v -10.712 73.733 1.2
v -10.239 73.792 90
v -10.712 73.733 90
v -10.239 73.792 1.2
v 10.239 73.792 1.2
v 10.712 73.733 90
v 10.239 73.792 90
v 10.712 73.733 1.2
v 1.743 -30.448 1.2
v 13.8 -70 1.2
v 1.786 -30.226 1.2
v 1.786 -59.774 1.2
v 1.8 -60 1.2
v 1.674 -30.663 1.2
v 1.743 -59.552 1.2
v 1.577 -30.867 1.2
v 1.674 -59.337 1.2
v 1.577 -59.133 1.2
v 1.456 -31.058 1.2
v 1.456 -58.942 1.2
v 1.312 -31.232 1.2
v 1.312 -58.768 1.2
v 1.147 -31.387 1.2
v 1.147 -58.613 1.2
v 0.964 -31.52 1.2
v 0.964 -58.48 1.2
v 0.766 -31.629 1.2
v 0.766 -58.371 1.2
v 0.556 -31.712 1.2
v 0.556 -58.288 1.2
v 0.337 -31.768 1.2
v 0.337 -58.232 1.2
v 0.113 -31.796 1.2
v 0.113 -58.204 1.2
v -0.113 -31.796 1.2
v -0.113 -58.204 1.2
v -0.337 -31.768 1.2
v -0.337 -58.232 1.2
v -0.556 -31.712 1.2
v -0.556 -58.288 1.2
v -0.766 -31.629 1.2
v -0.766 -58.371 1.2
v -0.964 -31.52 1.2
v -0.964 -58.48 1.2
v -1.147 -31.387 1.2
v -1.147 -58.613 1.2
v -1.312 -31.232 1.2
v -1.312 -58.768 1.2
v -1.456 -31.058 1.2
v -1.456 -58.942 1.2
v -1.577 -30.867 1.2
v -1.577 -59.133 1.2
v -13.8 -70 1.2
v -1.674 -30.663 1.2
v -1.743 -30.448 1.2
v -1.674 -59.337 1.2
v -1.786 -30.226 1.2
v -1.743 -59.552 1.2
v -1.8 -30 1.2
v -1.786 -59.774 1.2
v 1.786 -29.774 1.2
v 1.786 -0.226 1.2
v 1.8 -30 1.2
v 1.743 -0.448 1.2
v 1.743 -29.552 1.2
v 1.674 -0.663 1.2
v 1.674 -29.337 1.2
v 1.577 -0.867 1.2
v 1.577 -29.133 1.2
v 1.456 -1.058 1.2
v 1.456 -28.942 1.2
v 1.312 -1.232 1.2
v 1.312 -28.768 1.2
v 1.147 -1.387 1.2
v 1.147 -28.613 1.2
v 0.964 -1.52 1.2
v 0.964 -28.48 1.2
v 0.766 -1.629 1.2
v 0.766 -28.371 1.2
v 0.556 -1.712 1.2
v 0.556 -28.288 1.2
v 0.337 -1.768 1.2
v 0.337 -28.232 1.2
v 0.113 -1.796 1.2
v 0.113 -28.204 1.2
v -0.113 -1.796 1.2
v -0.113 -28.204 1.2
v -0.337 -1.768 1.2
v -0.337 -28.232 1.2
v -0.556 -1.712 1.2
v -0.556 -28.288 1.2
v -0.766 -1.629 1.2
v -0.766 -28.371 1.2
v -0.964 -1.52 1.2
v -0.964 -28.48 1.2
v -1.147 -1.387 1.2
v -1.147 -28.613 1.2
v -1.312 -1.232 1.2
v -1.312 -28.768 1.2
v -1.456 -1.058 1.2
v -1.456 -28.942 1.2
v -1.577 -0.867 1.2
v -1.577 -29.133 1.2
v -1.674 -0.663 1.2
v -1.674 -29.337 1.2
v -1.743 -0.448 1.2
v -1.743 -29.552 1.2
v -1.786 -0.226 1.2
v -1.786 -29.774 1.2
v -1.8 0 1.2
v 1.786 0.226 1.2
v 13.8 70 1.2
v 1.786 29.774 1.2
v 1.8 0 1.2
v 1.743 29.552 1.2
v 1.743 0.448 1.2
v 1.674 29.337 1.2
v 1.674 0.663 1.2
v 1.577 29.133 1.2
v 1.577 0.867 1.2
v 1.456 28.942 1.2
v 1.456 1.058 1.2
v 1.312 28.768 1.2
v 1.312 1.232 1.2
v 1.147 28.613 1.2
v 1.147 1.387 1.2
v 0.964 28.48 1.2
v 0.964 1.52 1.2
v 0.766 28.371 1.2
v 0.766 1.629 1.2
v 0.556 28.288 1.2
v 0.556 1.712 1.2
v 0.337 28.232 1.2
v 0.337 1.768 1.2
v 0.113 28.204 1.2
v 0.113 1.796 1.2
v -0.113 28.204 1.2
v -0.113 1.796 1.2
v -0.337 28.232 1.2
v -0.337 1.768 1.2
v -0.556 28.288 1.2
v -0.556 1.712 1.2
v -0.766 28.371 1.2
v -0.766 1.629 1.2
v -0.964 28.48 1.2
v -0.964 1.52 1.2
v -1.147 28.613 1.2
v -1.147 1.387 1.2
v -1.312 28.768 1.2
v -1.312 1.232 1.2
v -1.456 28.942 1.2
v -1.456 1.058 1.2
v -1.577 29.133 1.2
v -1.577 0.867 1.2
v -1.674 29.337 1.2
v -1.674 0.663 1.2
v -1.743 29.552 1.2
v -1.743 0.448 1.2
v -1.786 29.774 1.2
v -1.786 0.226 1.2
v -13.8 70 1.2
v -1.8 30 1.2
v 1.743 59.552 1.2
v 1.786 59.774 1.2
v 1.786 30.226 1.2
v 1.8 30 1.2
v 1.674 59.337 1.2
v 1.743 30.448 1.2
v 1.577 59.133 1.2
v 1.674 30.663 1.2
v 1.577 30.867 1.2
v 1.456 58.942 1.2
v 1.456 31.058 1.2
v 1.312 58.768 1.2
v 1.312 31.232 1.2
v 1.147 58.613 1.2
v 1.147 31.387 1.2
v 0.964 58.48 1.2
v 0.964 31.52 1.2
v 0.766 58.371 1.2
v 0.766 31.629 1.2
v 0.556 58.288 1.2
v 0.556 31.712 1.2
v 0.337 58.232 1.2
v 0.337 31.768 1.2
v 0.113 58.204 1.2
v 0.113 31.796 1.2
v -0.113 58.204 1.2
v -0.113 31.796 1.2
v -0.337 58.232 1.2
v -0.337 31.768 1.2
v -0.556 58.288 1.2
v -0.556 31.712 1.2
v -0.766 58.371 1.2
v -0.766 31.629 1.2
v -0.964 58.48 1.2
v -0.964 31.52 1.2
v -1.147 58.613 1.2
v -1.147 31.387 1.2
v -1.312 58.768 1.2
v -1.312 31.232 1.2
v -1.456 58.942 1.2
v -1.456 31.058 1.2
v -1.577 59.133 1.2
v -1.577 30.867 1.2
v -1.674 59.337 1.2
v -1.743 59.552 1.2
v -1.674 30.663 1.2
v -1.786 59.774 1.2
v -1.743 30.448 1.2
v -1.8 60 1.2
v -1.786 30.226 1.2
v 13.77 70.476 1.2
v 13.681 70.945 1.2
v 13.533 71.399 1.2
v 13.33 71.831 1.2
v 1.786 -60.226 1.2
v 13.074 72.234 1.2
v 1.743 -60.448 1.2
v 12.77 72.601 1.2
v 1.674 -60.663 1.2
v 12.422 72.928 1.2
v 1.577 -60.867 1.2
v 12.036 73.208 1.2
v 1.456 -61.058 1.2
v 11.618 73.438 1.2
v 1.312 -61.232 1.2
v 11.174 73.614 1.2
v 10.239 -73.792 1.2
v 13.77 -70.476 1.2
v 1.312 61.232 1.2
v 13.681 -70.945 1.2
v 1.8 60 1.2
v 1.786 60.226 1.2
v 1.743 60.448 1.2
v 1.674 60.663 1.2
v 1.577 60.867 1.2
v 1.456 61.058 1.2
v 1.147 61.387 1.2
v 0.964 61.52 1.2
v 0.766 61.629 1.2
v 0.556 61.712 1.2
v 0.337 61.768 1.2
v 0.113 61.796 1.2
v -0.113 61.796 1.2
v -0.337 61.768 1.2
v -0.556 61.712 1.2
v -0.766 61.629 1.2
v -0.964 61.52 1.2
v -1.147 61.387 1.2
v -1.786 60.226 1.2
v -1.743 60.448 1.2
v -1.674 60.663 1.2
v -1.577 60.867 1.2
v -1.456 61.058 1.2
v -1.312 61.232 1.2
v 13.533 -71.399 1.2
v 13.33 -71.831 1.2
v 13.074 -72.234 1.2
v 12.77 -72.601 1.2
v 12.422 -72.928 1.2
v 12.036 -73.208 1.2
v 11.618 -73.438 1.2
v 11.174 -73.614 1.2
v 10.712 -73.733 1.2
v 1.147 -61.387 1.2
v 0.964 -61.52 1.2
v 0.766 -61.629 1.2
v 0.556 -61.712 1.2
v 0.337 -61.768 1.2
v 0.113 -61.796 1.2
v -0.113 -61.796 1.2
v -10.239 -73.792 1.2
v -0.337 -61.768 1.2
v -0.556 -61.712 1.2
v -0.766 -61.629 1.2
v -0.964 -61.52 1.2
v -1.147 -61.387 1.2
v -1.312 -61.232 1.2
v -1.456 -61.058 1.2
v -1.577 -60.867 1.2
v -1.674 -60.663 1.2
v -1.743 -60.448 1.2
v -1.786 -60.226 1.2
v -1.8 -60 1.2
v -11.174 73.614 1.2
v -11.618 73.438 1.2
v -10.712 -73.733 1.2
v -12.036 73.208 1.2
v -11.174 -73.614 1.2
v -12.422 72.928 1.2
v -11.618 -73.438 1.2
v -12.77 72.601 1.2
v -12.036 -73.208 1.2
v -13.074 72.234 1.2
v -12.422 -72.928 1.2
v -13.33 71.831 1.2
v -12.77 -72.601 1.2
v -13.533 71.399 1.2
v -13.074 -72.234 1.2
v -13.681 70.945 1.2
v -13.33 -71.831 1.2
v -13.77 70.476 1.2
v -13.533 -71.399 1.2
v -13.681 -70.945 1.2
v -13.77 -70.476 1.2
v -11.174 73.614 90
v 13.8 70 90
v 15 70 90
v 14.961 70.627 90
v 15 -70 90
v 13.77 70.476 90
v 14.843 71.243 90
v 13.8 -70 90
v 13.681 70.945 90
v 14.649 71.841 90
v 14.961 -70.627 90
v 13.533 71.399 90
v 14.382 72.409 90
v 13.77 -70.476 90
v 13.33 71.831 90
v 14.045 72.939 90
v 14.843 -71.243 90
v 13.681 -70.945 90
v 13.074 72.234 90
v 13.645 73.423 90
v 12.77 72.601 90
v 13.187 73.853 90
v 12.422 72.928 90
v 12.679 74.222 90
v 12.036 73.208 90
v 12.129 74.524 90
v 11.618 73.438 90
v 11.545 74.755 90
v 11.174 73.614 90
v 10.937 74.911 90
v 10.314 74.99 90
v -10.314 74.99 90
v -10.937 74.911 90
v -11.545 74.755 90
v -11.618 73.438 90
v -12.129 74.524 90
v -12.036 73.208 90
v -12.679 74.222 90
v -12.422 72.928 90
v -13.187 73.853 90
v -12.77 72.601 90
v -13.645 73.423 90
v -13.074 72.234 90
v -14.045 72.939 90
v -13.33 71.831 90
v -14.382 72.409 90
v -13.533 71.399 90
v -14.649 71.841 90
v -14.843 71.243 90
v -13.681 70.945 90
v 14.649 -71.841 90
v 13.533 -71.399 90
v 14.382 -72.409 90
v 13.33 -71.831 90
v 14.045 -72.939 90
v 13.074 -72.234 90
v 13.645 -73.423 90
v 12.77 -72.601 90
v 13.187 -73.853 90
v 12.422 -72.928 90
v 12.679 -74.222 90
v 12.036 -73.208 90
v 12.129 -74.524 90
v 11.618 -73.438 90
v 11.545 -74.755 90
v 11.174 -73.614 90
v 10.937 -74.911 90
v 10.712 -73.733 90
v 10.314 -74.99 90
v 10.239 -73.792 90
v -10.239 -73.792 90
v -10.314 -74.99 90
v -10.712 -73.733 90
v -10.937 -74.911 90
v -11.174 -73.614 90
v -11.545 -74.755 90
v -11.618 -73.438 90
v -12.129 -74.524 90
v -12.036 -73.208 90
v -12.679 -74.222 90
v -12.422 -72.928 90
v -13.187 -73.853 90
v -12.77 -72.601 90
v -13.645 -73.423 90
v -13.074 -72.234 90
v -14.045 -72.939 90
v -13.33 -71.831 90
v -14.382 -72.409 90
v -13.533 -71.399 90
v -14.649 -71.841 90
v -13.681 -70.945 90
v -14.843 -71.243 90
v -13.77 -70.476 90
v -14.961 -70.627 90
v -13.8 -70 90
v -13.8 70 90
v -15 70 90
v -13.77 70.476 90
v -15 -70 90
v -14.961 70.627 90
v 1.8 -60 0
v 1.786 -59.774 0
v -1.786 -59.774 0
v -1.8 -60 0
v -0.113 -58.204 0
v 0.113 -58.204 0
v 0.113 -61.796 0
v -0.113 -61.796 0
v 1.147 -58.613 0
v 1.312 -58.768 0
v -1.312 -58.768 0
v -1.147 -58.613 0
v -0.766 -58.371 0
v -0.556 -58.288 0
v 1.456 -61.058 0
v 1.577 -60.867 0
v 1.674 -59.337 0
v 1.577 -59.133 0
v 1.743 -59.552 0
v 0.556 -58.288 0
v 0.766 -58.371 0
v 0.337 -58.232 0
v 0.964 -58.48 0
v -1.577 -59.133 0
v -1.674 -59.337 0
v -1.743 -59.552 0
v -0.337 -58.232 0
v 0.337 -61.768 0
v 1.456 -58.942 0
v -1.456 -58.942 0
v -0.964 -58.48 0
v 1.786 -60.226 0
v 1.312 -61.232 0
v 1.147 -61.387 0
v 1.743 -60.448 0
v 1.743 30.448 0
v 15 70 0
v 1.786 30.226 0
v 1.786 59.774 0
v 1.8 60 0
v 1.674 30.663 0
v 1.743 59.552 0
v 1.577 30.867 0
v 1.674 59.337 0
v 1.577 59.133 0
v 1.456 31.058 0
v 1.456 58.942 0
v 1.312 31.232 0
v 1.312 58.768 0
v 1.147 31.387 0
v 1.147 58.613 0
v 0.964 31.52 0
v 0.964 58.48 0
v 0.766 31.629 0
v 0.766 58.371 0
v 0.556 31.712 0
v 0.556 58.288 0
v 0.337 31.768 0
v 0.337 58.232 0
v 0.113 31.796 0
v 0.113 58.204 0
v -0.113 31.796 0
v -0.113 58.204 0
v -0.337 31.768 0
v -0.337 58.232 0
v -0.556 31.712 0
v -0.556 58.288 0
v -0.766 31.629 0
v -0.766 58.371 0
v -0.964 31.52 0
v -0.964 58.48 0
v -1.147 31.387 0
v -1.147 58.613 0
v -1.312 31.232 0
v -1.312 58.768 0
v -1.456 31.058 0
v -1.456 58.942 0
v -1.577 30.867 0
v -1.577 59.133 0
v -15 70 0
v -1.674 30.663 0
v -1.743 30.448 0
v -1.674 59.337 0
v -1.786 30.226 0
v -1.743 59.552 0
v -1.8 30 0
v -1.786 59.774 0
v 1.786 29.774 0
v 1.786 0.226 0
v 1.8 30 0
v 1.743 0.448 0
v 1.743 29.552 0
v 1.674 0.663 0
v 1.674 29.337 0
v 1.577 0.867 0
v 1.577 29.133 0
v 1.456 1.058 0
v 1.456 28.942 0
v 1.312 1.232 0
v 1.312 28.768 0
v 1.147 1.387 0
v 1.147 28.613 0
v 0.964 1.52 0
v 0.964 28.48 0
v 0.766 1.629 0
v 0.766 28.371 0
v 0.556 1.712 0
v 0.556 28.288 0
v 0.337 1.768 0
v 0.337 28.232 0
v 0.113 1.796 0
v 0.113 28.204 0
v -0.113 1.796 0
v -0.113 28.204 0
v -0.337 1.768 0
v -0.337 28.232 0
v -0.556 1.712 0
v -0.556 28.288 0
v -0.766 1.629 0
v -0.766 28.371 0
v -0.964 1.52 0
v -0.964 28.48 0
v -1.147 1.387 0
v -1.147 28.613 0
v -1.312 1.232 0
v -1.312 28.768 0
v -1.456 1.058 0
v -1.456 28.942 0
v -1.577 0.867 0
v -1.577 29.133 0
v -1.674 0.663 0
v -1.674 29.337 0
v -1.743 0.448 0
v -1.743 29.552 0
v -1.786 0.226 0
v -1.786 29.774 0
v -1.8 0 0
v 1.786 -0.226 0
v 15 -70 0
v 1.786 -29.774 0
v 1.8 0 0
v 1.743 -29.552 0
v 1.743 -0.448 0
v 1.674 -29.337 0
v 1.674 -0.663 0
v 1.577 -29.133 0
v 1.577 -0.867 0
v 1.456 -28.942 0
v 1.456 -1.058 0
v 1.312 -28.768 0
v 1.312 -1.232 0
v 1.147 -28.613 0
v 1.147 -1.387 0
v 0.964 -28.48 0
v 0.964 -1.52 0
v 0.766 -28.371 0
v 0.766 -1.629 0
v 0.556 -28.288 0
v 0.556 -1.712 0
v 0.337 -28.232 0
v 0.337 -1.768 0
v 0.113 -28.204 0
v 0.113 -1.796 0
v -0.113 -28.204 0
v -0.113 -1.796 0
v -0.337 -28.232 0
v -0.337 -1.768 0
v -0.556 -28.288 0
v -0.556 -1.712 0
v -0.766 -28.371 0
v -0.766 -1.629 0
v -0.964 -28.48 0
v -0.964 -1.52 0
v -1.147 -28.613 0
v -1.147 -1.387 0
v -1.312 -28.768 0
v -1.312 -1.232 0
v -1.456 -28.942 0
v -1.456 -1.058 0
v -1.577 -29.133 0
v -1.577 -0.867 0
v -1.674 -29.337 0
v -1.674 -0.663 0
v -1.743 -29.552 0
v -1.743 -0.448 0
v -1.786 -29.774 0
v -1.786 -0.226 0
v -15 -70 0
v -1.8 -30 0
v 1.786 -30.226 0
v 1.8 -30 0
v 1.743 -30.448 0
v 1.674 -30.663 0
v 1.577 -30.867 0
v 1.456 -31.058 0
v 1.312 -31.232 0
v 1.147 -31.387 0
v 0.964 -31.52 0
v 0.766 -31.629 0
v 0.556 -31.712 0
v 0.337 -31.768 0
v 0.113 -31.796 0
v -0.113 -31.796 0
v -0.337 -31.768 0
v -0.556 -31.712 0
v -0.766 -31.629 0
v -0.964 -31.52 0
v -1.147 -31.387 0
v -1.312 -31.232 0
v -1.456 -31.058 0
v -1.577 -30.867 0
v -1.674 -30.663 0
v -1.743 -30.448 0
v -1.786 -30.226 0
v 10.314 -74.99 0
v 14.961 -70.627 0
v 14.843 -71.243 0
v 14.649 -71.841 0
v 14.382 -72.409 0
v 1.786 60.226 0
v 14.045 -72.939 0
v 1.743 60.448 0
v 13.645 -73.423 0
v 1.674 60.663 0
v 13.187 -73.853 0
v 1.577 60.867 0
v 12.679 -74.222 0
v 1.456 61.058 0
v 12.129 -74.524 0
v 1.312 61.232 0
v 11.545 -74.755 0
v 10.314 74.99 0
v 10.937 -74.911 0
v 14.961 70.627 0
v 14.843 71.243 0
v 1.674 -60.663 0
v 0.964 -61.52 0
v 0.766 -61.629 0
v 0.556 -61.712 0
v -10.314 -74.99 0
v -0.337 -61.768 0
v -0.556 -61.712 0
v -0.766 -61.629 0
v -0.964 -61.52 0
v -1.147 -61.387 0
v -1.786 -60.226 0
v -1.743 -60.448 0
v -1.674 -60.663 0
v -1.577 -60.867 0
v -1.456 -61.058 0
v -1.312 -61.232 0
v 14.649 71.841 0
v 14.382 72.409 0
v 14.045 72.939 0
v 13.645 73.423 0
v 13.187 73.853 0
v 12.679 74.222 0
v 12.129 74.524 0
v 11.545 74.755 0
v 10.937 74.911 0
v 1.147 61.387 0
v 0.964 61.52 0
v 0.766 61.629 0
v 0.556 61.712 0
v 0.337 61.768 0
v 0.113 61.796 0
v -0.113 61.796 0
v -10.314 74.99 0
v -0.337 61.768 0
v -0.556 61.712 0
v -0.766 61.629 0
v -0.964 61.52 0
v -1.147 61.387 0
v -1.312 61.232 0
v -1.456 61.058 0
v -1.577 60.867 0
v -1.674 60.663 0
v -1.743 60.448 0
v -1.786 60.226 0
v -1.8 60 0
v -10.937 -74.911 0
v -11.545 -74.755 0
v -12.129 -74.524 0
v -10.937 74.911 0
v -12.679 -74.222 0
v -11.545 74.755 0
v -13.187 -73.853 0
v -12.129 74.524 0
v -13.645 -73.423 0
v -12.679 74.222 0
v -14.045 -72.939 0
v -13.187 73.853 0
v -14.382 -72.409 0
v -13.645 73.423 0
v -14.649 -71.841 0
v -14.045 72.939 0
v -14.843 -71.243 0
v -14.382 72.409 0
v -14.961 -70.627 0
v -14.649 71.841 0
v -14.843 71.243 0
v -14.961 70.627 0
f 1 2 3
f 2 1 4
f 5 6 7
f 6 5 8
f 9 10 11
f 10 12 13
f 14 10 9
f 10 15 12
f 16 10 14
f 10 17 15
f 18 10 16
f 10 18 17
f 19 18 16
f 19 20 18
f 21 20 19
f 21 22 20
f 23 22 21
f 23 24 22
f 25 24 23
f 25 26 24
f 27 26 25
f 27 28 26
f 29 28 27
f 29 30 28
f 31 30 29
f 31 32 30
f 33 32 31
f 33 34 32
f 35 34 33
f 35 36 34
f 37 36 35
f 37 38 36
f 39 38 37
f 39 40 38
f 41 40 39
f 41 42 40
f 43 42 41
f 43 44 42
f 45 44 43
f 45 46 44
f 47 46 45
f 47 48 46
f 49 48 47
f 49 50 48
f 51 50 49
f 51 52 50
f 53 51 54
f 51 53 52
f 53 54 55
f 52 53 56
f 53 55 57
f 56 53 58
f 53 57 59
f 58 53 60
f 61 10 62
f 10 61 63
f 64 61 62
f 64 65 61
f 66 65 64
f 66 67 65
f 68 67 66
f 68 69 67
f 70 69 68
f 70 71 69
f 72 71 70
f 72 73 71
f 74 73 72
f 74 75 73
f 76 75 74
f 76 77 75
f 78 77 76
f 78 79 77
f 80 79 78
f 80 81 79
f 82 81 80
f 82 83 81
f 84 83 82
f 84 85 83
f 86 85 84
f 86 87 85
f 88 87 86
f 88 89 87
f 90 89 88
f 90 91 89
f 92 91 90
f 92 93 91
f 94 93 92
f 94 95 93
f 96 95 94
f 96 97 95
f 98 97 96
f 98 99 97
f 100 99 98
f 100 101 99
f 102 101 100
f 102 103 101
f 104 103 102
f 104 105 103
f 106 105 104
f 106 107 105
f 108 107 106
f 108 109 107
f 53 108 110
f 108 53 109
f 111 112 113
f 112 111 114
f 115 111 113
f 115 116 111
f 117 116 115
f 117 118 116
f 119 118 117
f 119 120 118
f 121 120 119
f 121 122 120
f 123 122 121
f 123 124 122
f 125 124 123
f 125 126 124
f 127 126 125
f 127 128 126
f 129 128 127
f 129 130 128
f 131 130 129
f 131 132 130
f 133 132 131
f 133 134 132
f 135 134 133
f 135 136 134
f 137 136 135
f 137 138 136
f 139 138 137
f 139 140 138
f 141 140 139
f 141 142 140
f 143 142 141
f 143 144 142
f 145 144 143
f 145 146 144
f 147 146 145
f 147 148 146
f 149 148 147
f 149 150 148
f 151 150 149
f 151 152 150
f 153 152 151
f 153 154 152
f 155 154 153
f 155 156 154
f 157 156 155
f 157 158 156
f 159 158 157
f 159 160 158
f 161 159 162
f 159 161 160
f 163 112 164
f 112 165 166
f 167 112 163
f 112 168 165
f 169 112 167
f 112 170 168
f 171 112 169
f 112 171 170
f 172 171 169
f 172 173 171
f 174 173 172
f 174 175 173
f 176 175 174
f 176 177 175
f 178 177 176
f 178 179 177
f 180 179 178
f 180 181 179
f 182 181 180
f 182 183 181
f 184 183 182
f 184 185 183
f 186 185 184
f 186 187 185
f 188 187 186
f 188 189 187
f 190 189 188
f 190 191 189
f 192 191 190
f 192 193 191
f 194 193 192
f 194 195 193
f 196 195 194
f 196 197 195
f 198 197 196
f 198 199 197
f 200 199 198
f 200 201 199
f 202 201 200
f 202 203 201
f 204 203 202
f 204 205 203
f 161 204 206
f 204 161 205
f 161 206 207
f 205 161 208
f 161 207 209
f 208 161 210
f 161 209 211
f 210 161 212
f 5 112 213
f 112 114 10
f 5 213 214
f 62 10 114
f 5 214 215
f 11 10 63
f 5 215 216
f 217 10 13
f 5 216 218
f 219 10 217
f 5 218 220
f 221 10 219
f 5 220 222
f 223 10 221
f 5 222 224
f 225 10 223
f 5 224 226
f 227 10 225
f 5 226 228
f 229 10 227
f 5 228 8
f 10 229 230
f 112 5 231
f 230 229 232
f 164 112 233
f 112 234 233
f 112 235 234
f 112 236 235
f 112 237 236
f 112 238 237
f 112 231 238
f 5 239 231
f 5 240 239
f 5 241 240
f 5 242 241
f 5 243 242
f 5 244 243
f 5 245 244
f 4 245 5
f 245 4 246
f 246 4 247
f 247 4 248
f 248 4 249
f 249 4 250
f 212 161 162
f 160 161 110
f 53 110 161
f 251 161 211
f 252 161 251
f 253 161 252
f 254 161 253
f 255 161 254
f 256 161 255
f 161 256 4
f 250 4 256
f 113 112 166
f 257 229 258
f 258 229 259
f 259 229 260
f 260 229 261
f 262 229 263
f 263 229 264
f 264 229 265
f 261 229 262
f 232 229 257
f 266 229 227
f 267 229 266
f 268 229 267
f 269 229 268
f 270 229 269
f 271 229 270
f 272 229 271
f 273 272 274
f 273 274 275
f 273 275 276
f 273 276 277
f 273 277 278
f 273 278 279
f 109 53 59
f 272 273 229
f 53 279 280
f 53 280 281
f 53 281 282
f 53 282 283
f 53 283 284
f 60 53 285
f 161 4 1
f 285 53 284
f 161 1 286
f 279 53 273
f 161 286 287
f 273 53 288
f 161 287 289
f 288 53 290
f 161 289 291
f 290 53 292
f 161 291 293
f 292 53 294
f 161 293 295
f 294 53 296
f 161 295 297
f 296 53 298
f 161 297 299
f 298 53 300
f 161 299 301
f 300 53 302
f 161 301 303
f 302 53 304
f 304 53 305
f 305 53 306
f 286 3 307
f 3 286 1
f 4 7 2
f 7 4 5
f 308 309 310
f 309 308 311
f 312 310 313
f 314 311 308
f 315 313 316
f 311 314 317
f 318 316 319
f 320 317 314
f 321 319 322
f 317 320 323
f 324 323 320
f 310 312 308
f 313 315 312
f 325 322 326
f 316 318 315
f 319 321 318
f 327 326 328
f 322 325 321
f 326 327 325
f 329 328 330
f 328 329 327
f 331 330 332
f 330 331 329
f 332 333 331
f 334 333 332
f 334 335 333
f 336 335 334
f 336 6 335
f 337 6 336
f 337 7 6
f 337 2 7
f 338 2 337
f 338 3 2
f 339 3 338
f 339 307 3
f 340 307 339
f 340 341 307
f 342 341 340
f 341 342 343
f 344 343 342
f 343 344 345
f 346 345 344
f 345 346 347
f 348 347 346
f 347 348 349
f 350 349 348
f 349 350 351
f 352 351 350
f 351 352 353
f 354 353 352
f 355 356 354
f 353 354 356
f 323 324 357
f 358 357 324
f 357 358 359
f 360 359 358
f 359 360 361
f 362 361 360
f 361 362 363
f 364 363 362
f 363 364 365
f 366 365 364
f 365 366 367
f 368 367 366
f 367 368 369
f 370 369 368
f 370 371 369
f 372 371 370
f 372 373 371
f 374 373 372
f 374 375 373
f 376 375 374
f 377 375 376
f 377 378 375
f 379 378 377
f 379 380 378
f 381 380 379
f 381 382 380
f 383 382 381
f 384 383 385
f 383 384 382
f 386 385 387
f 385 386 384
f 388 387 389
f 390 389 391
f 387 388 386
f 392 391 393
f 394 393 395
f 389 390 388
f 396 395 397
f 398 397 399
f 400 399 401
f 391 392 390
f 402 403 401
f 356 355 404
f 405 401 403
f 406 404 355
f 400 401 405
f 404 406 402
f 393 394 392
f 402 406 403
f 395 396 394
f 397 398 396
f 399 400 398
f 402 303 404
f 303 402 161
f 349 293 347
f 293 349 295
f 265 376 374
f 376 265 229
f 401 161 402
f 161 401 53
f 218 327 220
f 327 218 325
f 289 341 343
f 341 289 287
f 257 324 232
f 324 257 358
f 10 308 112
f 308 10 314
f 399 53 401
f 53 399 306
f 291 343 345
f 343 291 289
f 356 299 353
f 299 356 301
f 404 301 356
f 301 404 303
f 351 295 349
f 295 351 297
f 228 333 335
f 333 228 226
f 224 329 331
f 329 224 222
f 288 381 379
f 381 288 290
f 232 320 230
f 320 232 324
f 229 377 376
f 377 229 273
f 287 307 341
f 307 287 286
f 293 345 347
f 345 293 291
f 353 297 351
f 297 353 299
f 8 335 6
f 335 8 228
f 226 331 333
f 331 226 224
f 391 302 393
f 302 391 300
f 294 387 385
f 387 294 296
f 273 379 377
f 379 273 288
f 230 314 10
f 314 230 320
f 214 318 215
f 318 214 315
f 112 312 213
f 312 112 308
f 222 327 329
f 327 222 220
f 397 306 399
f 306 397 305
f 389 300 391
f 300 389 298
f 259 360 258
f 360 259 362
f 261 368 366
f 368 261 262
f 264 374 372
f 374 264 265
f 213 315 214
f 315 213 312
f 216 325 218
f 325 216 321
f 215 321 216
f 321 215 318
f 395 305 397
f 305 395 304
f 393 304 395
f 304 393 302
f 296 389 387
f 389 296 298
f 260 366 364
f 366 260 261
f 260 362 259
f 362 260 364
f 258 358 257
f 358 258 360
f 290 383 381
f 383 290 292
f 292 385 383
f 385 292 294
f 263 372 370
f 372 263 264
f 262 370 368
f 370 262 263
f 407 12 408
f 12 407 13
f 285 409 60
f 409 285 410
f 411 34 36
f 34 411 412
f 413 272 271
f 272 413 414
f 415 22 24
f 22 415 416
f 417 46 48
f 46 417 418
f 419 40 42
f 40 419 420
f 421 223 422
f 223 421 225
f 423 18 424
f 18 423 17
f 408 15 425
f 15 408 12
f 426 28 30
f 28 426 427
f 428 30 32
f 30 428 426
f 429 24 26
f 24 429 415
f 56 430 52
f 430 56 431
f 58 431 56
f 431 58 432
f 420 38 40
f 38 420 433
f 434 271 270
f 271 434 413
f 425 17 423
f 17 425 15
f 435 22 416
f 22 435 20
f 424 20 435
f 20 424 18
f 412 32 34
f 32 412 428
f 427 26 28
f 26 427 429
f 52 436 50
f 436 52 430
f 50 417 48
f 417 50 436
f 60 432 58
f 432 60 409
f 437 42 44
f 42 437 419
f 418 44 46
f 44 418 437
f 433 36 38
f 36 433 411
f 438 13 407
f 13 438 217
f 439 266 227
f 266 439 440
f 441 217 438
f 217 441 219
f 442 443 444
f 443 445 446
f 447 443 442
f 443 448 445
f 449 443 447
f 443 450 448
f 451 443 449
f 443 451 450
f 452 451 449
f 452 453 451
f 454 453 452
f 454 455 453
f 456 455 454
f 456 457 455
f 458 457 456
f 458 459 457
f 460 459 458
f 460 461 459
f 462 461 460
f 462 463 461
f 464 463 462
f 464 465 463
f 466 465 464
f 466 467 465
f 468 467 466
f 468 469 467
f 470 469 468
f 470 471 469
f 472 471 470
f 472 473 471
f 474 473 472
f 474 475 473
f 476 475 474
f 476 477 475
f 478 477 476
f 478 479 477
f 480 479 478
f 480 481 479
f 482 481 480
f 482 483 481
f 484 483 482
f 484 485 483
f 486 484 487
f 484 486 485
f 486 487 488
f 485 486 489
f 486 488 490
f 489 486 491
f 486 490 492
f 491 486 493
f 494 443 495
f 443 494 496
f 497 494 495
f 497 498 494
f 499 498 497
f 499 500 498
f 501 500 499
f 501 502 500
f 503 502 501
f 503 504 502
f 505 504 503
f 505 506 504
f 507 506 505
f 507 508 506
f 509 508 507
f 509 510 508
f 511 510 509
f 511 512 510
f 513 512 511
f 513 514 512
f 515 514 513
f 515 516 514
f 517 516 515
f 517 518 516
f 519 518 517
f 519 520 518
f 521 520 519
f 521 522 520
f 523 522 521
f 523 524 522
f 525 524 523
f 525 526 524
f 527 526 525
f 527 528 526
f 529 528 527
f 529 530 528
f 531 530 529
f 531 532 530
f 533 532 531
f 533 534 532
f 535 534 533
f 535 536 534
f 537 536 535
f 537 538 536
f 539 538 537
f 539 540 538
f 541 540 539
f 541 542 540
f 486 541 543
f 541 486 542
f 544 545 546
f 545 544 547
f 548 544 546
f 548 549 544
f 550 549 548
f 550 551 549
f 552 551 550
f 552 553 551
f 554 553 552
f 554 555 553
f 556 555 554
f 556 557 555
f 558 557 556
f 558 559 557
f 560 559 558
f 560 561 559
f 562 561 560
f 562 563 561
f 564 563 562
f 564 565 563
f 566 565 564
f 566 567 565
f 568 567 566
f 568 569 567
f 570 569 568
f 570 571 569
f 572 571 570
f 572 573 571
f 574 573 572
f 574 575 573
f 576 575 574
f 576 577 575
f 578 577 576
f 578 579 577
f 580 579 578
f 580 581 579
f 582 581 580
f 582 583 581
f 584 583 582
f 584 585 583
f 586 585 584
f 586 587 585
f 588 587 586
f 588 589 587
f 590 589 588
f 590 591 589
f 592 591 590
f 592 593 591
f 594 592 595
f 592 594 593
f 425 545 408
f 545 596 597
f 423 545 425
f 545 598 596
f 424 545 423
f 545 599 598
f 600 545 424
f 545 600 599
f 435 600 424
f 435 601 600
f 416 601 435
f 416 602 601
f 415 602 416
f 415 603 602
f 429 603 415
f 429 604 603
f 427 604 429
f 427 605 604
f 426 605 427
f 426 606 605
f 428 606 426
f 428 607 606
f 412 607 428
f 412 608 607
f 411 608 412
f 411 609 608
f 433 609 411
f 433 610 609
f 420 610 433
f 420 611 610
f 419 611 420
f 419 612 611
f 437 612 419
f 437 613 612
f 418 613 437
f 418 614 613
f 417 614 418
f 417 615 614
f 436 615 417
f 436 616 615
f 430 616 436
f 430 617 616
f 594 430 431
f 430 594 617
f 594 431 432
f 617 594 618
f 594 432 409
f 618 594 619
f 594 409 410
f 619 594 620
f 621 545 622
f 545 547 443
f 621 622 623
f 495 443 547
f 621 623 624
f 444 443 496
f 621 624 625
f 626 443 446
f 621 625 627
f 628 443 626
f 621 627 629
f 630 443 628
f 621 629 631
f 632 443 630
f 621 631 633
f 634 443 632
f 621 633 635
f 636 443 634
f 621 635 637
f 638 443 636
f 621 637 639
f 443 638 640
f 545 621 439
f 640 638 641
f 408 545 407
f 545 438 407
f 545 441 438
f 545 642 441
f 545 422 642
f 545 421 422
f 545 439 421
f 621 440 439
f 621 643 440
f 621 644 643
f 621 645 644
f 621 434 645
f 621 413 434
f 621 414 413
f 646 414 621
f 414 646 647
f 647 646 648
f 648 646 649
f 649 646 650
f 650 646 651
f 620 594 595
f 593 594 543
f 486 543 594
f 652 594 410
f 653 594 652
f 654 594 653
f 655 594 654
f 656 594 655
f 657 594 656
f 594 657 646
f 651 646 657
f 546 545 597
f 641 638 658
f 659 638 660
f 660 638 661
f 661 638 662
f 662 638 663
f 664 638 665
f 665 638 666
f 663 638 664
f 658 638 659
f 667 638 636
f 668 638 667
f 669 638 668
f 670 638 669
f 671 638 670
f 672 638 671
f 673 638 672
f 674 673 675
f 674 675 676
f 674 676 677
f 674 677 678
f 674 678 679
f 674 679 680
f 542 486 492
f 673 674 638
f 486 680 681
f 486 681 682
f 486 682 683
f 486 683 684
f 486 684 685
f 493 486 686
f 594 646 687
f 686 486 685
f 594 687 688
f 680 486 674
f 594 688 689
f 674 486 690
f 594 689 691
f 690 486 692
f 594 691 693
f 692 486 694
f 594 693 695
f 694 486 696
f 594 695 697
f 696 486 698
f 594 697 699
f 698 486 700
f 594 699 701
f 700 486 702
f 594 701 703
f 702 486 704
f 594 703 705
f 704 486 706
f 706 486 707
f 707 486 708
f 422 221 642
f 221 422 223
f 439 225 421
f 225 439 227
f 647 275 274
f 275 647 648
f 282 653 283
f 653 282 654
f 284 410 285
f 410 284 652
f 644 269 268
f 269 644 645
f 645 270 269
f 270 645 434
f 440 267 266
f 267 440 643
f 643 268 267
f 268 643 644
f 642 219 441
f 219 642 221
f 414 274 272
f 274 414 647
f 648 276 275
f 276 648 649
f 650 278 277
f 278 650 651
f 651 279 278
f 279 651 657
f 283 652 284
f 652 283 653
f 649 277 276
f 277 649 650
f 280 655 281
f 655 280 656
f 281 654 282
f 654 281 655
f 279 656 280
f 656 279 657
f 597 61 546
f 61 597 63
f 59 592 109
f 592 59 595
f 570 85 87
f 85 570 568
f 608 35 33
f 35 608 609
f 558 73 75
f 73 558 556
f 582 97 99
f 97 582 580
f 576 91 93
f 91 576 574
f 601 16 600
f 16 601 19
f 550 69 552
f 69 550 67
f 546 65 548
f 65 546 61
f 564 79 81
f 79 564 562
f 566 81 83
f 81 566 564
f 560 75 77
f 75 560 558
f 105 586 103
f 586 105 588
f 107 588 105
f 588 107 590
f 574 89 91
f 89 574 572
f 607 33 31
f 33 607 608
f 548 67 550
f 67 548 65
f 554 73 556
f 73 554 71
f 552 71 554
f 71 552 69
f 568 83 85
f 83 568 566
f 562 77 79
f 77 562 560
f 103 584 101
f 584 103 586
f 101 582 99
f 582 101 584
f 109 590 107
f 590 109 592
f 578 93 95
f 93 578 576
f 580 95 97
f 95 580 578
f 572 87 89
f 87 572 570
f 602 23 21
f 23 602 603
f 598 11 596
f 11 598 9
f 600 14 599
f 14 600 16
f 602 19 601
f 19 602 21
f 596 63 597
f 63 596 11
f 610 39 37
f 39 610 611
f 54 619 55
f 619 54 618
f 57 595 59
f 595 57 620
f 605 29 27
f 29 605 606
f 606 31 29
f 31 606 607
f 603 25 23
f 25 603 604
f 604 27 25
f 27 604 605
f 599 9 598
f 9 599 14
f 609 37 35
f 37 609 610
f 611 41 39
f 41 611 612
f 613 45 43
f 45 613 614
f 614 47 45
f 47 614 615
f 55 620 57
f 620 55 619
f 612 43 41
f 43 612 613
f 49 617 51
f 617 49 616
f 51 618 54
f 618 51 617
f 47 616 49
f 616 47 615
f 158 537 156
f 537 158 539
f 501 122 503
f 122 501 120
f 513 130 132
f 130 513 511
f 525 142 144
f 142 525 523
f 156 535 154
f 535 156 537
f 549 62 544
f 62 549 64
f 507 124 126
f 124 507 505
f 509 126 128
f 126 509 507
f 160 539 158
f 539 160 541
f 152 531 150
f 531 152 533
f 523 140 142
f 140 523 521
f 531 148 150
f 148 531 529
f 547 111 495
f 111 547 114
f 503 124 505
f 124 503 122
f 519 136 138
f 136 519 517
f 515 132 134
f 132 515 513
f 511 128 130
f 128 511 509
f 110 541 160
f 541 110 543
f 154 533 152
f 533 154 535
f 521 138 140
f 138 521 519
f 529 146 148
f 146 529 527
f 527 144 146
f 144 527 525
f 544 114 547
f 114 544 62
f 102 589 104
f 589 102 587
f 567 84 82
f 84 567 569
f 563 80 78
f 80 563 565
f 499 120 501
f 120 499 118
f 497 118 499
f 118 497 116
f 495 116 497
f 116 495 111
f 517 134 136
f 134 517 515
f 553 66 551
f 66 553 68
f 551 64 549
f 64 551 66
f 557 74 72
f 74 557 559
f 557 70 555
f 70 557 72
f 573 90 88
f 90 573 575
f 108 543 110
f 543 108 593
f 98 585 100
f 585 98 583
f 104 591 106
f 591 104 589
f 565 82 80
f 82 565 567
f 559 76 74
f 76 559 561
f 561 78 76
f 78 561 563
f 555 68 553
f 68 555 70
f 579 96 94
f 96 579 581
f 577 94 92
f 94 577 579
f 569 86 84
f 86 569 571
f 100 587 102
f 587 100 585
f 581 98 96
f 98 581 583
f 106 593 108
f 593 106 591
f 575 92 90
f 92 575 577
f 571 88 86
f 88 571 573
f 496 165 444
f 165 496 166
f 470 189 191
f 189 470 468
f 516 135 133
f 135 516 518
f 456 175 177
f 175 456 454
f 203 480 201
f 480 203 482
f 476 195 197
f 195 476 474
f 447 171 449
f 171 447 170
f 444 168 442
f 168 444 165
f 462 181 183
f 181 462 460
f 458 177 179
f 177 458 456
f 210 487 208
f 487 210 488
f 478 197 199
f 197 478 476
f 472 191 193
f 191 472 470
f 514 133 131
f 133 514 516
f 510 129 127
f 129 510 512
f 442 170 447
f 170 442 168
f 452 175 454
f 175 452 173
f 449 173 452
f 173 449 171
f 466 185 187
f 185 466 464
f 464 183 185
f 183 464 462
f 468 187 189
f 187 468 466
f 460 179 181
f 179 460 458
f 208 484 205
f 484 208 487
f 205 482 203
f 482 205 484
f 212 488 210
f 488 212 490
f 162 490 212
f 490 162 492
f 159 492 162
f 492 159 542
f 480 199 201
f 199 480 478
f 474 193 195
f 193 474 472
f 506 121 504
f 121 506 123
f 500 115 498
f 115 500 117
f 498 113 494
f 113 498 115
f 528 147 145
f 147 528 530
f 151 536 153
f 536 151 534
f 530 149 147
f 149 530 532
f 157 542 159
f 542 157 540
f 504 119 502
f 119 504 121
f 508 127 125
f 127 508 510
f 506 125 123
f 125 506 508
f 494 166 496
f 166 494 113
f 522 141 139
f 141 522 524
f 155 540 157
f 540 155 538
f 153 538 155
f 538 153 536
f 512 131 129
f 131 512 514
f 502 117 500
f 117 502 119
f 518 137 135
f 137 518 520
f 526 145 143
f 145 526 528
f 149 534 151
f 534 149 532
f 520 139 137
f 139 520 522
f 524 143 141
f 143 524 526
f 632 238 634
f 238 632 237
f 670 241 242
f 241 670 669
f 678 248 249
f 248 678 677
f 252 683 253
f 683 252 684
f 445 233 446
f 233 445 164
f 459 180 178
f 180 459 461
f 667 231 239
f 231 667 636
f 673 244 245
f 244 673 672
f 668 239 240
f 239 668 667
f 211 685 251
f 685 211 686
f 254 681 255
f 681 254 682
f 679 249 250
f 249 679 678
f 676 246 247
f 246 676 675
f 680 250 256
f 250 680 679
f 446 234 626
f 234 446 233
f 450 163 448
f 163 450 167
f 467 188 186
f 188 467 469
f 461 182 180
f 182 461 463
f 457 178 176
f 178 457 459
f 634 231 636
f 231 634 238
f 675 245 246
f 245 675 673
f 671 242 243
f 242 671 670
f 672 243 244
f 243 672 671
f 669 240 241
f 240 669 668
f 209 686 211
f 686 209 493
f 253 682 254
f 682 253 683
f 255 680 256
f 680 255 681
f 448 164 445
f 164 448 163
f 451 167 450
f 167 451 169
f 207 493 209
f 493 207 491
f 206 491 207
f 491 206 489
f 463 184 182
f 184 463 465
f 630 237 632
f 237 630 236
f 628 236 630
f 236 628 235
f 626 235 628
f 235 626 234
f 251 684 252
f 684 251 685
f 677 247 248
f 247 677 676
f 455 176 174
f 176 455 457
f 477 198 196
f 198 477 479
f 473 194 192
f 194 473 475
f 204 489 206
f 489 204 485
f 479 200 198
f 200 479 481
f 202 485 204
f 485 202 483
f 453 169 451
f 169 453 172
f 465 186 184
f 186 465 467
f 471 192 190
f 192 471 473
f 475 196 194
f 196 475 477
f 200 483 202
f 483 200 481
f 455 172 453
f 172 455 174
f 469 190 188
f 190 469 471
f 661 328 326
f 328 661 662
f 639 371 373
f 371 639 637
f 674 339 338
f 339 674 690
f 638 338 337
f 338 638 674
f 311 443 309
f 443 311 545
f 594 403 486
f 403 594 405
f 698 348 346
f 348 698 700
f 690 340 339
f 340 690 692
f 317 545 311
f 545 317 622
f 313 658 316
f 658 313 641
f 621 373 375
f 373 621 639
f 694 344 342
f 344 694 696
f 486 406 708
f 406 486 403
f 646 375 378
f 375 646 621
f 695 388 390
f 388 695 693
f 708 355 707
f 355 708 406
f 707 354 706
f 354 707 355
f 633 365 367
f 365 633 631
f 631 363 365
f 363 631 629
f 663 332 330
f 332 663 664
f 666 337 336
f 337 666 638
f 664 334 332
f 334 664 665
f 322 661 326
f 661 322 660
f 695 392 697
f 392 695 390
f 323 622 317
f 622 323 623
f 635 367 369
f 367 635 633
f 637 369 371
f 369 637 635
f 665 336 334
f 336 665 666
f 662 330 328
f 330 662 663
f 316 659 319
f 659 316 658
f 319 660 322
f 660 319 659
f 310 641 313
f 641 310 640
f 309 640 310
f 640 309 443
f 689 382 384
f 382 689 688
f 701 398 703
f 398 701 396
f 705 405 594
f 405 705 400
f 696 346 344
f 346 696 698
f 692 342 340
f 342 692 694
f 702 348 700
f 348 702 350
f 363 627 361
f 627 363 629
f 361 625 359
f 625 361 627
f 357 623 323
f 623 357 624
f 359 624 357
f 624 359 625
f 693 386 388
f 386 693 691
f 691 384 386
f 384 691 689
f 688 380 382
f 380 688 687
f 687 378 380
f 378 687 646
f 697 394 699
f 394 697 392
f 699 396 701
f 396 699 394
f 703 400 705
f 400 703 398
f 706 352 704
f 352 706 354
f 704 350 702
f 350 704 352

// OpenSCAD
$fn = 50;


difference() {
	union() {
		hull() {
			translate(v = [-10.0000000000, 70.0000000000, 0]) {
				cylinder(h = 90, r = 5);
			}
			translate(v = [10.0000000000, 70.0000000000, 0]) {
				cylinder(h = 90, r = 5);
			}
			translate(v = [-10.0000000000, -70.0000000000, 0]) {
				cylinder(h = 90, r = 5);
			}
			translate(v = [10.0000000000, -70.0000000000, 0]) {
				cylinder(h = 90, r = 5);
			}
		}
	}
	union() {
		translate(v = [0, 0, 1.2000000000]) {
			hull() {
				translate(v = [-10.0000000000, 70.0000000000, 0]) {
					cylinder(h = 88.8000000000, r = 3.8000000000);
				}
				translate(v = [10.0000000000, 70.0000000000, 0]) {
					cylinder(h = 88.8000000000, r = 3.8000000000);
				}
				translate(v = [-10.0000000000, -70.0000000000, 0]) {
					cylinder(h = 88.8000000000, r = 3.8000000000);
				}
				translate(v = [10.0000000000, -70.0000000000, 0]) {
					cylinder(h = 88.8000000000, r = 3.8000000000);
				}
			}
		}
		#translate(v = [0.0000000000, -60.0000000000, 0]) {
			cylinder(h = 1.2000000000, r = 1.8000000000);
		}
		#translate(v = [0.0000000000, -30.0000000000, 0]) {
			cylinder(h = 1.2000000000, r = 1.8000000000);
		}
		#cylinder(h = 1.2000000000, r = 1.8000000000);
		#translate(v = [0.0000000000, 30.0000000000, 0]) {
			cylinder(h = 1.2000000000, r = 1.8000000000);
		}
		#translate(v = [0.0000000000, 60.0000000000, 0]) {
			cylinder(h = 1.2000000000, r = 1.8000000000);
		}
	}
}
